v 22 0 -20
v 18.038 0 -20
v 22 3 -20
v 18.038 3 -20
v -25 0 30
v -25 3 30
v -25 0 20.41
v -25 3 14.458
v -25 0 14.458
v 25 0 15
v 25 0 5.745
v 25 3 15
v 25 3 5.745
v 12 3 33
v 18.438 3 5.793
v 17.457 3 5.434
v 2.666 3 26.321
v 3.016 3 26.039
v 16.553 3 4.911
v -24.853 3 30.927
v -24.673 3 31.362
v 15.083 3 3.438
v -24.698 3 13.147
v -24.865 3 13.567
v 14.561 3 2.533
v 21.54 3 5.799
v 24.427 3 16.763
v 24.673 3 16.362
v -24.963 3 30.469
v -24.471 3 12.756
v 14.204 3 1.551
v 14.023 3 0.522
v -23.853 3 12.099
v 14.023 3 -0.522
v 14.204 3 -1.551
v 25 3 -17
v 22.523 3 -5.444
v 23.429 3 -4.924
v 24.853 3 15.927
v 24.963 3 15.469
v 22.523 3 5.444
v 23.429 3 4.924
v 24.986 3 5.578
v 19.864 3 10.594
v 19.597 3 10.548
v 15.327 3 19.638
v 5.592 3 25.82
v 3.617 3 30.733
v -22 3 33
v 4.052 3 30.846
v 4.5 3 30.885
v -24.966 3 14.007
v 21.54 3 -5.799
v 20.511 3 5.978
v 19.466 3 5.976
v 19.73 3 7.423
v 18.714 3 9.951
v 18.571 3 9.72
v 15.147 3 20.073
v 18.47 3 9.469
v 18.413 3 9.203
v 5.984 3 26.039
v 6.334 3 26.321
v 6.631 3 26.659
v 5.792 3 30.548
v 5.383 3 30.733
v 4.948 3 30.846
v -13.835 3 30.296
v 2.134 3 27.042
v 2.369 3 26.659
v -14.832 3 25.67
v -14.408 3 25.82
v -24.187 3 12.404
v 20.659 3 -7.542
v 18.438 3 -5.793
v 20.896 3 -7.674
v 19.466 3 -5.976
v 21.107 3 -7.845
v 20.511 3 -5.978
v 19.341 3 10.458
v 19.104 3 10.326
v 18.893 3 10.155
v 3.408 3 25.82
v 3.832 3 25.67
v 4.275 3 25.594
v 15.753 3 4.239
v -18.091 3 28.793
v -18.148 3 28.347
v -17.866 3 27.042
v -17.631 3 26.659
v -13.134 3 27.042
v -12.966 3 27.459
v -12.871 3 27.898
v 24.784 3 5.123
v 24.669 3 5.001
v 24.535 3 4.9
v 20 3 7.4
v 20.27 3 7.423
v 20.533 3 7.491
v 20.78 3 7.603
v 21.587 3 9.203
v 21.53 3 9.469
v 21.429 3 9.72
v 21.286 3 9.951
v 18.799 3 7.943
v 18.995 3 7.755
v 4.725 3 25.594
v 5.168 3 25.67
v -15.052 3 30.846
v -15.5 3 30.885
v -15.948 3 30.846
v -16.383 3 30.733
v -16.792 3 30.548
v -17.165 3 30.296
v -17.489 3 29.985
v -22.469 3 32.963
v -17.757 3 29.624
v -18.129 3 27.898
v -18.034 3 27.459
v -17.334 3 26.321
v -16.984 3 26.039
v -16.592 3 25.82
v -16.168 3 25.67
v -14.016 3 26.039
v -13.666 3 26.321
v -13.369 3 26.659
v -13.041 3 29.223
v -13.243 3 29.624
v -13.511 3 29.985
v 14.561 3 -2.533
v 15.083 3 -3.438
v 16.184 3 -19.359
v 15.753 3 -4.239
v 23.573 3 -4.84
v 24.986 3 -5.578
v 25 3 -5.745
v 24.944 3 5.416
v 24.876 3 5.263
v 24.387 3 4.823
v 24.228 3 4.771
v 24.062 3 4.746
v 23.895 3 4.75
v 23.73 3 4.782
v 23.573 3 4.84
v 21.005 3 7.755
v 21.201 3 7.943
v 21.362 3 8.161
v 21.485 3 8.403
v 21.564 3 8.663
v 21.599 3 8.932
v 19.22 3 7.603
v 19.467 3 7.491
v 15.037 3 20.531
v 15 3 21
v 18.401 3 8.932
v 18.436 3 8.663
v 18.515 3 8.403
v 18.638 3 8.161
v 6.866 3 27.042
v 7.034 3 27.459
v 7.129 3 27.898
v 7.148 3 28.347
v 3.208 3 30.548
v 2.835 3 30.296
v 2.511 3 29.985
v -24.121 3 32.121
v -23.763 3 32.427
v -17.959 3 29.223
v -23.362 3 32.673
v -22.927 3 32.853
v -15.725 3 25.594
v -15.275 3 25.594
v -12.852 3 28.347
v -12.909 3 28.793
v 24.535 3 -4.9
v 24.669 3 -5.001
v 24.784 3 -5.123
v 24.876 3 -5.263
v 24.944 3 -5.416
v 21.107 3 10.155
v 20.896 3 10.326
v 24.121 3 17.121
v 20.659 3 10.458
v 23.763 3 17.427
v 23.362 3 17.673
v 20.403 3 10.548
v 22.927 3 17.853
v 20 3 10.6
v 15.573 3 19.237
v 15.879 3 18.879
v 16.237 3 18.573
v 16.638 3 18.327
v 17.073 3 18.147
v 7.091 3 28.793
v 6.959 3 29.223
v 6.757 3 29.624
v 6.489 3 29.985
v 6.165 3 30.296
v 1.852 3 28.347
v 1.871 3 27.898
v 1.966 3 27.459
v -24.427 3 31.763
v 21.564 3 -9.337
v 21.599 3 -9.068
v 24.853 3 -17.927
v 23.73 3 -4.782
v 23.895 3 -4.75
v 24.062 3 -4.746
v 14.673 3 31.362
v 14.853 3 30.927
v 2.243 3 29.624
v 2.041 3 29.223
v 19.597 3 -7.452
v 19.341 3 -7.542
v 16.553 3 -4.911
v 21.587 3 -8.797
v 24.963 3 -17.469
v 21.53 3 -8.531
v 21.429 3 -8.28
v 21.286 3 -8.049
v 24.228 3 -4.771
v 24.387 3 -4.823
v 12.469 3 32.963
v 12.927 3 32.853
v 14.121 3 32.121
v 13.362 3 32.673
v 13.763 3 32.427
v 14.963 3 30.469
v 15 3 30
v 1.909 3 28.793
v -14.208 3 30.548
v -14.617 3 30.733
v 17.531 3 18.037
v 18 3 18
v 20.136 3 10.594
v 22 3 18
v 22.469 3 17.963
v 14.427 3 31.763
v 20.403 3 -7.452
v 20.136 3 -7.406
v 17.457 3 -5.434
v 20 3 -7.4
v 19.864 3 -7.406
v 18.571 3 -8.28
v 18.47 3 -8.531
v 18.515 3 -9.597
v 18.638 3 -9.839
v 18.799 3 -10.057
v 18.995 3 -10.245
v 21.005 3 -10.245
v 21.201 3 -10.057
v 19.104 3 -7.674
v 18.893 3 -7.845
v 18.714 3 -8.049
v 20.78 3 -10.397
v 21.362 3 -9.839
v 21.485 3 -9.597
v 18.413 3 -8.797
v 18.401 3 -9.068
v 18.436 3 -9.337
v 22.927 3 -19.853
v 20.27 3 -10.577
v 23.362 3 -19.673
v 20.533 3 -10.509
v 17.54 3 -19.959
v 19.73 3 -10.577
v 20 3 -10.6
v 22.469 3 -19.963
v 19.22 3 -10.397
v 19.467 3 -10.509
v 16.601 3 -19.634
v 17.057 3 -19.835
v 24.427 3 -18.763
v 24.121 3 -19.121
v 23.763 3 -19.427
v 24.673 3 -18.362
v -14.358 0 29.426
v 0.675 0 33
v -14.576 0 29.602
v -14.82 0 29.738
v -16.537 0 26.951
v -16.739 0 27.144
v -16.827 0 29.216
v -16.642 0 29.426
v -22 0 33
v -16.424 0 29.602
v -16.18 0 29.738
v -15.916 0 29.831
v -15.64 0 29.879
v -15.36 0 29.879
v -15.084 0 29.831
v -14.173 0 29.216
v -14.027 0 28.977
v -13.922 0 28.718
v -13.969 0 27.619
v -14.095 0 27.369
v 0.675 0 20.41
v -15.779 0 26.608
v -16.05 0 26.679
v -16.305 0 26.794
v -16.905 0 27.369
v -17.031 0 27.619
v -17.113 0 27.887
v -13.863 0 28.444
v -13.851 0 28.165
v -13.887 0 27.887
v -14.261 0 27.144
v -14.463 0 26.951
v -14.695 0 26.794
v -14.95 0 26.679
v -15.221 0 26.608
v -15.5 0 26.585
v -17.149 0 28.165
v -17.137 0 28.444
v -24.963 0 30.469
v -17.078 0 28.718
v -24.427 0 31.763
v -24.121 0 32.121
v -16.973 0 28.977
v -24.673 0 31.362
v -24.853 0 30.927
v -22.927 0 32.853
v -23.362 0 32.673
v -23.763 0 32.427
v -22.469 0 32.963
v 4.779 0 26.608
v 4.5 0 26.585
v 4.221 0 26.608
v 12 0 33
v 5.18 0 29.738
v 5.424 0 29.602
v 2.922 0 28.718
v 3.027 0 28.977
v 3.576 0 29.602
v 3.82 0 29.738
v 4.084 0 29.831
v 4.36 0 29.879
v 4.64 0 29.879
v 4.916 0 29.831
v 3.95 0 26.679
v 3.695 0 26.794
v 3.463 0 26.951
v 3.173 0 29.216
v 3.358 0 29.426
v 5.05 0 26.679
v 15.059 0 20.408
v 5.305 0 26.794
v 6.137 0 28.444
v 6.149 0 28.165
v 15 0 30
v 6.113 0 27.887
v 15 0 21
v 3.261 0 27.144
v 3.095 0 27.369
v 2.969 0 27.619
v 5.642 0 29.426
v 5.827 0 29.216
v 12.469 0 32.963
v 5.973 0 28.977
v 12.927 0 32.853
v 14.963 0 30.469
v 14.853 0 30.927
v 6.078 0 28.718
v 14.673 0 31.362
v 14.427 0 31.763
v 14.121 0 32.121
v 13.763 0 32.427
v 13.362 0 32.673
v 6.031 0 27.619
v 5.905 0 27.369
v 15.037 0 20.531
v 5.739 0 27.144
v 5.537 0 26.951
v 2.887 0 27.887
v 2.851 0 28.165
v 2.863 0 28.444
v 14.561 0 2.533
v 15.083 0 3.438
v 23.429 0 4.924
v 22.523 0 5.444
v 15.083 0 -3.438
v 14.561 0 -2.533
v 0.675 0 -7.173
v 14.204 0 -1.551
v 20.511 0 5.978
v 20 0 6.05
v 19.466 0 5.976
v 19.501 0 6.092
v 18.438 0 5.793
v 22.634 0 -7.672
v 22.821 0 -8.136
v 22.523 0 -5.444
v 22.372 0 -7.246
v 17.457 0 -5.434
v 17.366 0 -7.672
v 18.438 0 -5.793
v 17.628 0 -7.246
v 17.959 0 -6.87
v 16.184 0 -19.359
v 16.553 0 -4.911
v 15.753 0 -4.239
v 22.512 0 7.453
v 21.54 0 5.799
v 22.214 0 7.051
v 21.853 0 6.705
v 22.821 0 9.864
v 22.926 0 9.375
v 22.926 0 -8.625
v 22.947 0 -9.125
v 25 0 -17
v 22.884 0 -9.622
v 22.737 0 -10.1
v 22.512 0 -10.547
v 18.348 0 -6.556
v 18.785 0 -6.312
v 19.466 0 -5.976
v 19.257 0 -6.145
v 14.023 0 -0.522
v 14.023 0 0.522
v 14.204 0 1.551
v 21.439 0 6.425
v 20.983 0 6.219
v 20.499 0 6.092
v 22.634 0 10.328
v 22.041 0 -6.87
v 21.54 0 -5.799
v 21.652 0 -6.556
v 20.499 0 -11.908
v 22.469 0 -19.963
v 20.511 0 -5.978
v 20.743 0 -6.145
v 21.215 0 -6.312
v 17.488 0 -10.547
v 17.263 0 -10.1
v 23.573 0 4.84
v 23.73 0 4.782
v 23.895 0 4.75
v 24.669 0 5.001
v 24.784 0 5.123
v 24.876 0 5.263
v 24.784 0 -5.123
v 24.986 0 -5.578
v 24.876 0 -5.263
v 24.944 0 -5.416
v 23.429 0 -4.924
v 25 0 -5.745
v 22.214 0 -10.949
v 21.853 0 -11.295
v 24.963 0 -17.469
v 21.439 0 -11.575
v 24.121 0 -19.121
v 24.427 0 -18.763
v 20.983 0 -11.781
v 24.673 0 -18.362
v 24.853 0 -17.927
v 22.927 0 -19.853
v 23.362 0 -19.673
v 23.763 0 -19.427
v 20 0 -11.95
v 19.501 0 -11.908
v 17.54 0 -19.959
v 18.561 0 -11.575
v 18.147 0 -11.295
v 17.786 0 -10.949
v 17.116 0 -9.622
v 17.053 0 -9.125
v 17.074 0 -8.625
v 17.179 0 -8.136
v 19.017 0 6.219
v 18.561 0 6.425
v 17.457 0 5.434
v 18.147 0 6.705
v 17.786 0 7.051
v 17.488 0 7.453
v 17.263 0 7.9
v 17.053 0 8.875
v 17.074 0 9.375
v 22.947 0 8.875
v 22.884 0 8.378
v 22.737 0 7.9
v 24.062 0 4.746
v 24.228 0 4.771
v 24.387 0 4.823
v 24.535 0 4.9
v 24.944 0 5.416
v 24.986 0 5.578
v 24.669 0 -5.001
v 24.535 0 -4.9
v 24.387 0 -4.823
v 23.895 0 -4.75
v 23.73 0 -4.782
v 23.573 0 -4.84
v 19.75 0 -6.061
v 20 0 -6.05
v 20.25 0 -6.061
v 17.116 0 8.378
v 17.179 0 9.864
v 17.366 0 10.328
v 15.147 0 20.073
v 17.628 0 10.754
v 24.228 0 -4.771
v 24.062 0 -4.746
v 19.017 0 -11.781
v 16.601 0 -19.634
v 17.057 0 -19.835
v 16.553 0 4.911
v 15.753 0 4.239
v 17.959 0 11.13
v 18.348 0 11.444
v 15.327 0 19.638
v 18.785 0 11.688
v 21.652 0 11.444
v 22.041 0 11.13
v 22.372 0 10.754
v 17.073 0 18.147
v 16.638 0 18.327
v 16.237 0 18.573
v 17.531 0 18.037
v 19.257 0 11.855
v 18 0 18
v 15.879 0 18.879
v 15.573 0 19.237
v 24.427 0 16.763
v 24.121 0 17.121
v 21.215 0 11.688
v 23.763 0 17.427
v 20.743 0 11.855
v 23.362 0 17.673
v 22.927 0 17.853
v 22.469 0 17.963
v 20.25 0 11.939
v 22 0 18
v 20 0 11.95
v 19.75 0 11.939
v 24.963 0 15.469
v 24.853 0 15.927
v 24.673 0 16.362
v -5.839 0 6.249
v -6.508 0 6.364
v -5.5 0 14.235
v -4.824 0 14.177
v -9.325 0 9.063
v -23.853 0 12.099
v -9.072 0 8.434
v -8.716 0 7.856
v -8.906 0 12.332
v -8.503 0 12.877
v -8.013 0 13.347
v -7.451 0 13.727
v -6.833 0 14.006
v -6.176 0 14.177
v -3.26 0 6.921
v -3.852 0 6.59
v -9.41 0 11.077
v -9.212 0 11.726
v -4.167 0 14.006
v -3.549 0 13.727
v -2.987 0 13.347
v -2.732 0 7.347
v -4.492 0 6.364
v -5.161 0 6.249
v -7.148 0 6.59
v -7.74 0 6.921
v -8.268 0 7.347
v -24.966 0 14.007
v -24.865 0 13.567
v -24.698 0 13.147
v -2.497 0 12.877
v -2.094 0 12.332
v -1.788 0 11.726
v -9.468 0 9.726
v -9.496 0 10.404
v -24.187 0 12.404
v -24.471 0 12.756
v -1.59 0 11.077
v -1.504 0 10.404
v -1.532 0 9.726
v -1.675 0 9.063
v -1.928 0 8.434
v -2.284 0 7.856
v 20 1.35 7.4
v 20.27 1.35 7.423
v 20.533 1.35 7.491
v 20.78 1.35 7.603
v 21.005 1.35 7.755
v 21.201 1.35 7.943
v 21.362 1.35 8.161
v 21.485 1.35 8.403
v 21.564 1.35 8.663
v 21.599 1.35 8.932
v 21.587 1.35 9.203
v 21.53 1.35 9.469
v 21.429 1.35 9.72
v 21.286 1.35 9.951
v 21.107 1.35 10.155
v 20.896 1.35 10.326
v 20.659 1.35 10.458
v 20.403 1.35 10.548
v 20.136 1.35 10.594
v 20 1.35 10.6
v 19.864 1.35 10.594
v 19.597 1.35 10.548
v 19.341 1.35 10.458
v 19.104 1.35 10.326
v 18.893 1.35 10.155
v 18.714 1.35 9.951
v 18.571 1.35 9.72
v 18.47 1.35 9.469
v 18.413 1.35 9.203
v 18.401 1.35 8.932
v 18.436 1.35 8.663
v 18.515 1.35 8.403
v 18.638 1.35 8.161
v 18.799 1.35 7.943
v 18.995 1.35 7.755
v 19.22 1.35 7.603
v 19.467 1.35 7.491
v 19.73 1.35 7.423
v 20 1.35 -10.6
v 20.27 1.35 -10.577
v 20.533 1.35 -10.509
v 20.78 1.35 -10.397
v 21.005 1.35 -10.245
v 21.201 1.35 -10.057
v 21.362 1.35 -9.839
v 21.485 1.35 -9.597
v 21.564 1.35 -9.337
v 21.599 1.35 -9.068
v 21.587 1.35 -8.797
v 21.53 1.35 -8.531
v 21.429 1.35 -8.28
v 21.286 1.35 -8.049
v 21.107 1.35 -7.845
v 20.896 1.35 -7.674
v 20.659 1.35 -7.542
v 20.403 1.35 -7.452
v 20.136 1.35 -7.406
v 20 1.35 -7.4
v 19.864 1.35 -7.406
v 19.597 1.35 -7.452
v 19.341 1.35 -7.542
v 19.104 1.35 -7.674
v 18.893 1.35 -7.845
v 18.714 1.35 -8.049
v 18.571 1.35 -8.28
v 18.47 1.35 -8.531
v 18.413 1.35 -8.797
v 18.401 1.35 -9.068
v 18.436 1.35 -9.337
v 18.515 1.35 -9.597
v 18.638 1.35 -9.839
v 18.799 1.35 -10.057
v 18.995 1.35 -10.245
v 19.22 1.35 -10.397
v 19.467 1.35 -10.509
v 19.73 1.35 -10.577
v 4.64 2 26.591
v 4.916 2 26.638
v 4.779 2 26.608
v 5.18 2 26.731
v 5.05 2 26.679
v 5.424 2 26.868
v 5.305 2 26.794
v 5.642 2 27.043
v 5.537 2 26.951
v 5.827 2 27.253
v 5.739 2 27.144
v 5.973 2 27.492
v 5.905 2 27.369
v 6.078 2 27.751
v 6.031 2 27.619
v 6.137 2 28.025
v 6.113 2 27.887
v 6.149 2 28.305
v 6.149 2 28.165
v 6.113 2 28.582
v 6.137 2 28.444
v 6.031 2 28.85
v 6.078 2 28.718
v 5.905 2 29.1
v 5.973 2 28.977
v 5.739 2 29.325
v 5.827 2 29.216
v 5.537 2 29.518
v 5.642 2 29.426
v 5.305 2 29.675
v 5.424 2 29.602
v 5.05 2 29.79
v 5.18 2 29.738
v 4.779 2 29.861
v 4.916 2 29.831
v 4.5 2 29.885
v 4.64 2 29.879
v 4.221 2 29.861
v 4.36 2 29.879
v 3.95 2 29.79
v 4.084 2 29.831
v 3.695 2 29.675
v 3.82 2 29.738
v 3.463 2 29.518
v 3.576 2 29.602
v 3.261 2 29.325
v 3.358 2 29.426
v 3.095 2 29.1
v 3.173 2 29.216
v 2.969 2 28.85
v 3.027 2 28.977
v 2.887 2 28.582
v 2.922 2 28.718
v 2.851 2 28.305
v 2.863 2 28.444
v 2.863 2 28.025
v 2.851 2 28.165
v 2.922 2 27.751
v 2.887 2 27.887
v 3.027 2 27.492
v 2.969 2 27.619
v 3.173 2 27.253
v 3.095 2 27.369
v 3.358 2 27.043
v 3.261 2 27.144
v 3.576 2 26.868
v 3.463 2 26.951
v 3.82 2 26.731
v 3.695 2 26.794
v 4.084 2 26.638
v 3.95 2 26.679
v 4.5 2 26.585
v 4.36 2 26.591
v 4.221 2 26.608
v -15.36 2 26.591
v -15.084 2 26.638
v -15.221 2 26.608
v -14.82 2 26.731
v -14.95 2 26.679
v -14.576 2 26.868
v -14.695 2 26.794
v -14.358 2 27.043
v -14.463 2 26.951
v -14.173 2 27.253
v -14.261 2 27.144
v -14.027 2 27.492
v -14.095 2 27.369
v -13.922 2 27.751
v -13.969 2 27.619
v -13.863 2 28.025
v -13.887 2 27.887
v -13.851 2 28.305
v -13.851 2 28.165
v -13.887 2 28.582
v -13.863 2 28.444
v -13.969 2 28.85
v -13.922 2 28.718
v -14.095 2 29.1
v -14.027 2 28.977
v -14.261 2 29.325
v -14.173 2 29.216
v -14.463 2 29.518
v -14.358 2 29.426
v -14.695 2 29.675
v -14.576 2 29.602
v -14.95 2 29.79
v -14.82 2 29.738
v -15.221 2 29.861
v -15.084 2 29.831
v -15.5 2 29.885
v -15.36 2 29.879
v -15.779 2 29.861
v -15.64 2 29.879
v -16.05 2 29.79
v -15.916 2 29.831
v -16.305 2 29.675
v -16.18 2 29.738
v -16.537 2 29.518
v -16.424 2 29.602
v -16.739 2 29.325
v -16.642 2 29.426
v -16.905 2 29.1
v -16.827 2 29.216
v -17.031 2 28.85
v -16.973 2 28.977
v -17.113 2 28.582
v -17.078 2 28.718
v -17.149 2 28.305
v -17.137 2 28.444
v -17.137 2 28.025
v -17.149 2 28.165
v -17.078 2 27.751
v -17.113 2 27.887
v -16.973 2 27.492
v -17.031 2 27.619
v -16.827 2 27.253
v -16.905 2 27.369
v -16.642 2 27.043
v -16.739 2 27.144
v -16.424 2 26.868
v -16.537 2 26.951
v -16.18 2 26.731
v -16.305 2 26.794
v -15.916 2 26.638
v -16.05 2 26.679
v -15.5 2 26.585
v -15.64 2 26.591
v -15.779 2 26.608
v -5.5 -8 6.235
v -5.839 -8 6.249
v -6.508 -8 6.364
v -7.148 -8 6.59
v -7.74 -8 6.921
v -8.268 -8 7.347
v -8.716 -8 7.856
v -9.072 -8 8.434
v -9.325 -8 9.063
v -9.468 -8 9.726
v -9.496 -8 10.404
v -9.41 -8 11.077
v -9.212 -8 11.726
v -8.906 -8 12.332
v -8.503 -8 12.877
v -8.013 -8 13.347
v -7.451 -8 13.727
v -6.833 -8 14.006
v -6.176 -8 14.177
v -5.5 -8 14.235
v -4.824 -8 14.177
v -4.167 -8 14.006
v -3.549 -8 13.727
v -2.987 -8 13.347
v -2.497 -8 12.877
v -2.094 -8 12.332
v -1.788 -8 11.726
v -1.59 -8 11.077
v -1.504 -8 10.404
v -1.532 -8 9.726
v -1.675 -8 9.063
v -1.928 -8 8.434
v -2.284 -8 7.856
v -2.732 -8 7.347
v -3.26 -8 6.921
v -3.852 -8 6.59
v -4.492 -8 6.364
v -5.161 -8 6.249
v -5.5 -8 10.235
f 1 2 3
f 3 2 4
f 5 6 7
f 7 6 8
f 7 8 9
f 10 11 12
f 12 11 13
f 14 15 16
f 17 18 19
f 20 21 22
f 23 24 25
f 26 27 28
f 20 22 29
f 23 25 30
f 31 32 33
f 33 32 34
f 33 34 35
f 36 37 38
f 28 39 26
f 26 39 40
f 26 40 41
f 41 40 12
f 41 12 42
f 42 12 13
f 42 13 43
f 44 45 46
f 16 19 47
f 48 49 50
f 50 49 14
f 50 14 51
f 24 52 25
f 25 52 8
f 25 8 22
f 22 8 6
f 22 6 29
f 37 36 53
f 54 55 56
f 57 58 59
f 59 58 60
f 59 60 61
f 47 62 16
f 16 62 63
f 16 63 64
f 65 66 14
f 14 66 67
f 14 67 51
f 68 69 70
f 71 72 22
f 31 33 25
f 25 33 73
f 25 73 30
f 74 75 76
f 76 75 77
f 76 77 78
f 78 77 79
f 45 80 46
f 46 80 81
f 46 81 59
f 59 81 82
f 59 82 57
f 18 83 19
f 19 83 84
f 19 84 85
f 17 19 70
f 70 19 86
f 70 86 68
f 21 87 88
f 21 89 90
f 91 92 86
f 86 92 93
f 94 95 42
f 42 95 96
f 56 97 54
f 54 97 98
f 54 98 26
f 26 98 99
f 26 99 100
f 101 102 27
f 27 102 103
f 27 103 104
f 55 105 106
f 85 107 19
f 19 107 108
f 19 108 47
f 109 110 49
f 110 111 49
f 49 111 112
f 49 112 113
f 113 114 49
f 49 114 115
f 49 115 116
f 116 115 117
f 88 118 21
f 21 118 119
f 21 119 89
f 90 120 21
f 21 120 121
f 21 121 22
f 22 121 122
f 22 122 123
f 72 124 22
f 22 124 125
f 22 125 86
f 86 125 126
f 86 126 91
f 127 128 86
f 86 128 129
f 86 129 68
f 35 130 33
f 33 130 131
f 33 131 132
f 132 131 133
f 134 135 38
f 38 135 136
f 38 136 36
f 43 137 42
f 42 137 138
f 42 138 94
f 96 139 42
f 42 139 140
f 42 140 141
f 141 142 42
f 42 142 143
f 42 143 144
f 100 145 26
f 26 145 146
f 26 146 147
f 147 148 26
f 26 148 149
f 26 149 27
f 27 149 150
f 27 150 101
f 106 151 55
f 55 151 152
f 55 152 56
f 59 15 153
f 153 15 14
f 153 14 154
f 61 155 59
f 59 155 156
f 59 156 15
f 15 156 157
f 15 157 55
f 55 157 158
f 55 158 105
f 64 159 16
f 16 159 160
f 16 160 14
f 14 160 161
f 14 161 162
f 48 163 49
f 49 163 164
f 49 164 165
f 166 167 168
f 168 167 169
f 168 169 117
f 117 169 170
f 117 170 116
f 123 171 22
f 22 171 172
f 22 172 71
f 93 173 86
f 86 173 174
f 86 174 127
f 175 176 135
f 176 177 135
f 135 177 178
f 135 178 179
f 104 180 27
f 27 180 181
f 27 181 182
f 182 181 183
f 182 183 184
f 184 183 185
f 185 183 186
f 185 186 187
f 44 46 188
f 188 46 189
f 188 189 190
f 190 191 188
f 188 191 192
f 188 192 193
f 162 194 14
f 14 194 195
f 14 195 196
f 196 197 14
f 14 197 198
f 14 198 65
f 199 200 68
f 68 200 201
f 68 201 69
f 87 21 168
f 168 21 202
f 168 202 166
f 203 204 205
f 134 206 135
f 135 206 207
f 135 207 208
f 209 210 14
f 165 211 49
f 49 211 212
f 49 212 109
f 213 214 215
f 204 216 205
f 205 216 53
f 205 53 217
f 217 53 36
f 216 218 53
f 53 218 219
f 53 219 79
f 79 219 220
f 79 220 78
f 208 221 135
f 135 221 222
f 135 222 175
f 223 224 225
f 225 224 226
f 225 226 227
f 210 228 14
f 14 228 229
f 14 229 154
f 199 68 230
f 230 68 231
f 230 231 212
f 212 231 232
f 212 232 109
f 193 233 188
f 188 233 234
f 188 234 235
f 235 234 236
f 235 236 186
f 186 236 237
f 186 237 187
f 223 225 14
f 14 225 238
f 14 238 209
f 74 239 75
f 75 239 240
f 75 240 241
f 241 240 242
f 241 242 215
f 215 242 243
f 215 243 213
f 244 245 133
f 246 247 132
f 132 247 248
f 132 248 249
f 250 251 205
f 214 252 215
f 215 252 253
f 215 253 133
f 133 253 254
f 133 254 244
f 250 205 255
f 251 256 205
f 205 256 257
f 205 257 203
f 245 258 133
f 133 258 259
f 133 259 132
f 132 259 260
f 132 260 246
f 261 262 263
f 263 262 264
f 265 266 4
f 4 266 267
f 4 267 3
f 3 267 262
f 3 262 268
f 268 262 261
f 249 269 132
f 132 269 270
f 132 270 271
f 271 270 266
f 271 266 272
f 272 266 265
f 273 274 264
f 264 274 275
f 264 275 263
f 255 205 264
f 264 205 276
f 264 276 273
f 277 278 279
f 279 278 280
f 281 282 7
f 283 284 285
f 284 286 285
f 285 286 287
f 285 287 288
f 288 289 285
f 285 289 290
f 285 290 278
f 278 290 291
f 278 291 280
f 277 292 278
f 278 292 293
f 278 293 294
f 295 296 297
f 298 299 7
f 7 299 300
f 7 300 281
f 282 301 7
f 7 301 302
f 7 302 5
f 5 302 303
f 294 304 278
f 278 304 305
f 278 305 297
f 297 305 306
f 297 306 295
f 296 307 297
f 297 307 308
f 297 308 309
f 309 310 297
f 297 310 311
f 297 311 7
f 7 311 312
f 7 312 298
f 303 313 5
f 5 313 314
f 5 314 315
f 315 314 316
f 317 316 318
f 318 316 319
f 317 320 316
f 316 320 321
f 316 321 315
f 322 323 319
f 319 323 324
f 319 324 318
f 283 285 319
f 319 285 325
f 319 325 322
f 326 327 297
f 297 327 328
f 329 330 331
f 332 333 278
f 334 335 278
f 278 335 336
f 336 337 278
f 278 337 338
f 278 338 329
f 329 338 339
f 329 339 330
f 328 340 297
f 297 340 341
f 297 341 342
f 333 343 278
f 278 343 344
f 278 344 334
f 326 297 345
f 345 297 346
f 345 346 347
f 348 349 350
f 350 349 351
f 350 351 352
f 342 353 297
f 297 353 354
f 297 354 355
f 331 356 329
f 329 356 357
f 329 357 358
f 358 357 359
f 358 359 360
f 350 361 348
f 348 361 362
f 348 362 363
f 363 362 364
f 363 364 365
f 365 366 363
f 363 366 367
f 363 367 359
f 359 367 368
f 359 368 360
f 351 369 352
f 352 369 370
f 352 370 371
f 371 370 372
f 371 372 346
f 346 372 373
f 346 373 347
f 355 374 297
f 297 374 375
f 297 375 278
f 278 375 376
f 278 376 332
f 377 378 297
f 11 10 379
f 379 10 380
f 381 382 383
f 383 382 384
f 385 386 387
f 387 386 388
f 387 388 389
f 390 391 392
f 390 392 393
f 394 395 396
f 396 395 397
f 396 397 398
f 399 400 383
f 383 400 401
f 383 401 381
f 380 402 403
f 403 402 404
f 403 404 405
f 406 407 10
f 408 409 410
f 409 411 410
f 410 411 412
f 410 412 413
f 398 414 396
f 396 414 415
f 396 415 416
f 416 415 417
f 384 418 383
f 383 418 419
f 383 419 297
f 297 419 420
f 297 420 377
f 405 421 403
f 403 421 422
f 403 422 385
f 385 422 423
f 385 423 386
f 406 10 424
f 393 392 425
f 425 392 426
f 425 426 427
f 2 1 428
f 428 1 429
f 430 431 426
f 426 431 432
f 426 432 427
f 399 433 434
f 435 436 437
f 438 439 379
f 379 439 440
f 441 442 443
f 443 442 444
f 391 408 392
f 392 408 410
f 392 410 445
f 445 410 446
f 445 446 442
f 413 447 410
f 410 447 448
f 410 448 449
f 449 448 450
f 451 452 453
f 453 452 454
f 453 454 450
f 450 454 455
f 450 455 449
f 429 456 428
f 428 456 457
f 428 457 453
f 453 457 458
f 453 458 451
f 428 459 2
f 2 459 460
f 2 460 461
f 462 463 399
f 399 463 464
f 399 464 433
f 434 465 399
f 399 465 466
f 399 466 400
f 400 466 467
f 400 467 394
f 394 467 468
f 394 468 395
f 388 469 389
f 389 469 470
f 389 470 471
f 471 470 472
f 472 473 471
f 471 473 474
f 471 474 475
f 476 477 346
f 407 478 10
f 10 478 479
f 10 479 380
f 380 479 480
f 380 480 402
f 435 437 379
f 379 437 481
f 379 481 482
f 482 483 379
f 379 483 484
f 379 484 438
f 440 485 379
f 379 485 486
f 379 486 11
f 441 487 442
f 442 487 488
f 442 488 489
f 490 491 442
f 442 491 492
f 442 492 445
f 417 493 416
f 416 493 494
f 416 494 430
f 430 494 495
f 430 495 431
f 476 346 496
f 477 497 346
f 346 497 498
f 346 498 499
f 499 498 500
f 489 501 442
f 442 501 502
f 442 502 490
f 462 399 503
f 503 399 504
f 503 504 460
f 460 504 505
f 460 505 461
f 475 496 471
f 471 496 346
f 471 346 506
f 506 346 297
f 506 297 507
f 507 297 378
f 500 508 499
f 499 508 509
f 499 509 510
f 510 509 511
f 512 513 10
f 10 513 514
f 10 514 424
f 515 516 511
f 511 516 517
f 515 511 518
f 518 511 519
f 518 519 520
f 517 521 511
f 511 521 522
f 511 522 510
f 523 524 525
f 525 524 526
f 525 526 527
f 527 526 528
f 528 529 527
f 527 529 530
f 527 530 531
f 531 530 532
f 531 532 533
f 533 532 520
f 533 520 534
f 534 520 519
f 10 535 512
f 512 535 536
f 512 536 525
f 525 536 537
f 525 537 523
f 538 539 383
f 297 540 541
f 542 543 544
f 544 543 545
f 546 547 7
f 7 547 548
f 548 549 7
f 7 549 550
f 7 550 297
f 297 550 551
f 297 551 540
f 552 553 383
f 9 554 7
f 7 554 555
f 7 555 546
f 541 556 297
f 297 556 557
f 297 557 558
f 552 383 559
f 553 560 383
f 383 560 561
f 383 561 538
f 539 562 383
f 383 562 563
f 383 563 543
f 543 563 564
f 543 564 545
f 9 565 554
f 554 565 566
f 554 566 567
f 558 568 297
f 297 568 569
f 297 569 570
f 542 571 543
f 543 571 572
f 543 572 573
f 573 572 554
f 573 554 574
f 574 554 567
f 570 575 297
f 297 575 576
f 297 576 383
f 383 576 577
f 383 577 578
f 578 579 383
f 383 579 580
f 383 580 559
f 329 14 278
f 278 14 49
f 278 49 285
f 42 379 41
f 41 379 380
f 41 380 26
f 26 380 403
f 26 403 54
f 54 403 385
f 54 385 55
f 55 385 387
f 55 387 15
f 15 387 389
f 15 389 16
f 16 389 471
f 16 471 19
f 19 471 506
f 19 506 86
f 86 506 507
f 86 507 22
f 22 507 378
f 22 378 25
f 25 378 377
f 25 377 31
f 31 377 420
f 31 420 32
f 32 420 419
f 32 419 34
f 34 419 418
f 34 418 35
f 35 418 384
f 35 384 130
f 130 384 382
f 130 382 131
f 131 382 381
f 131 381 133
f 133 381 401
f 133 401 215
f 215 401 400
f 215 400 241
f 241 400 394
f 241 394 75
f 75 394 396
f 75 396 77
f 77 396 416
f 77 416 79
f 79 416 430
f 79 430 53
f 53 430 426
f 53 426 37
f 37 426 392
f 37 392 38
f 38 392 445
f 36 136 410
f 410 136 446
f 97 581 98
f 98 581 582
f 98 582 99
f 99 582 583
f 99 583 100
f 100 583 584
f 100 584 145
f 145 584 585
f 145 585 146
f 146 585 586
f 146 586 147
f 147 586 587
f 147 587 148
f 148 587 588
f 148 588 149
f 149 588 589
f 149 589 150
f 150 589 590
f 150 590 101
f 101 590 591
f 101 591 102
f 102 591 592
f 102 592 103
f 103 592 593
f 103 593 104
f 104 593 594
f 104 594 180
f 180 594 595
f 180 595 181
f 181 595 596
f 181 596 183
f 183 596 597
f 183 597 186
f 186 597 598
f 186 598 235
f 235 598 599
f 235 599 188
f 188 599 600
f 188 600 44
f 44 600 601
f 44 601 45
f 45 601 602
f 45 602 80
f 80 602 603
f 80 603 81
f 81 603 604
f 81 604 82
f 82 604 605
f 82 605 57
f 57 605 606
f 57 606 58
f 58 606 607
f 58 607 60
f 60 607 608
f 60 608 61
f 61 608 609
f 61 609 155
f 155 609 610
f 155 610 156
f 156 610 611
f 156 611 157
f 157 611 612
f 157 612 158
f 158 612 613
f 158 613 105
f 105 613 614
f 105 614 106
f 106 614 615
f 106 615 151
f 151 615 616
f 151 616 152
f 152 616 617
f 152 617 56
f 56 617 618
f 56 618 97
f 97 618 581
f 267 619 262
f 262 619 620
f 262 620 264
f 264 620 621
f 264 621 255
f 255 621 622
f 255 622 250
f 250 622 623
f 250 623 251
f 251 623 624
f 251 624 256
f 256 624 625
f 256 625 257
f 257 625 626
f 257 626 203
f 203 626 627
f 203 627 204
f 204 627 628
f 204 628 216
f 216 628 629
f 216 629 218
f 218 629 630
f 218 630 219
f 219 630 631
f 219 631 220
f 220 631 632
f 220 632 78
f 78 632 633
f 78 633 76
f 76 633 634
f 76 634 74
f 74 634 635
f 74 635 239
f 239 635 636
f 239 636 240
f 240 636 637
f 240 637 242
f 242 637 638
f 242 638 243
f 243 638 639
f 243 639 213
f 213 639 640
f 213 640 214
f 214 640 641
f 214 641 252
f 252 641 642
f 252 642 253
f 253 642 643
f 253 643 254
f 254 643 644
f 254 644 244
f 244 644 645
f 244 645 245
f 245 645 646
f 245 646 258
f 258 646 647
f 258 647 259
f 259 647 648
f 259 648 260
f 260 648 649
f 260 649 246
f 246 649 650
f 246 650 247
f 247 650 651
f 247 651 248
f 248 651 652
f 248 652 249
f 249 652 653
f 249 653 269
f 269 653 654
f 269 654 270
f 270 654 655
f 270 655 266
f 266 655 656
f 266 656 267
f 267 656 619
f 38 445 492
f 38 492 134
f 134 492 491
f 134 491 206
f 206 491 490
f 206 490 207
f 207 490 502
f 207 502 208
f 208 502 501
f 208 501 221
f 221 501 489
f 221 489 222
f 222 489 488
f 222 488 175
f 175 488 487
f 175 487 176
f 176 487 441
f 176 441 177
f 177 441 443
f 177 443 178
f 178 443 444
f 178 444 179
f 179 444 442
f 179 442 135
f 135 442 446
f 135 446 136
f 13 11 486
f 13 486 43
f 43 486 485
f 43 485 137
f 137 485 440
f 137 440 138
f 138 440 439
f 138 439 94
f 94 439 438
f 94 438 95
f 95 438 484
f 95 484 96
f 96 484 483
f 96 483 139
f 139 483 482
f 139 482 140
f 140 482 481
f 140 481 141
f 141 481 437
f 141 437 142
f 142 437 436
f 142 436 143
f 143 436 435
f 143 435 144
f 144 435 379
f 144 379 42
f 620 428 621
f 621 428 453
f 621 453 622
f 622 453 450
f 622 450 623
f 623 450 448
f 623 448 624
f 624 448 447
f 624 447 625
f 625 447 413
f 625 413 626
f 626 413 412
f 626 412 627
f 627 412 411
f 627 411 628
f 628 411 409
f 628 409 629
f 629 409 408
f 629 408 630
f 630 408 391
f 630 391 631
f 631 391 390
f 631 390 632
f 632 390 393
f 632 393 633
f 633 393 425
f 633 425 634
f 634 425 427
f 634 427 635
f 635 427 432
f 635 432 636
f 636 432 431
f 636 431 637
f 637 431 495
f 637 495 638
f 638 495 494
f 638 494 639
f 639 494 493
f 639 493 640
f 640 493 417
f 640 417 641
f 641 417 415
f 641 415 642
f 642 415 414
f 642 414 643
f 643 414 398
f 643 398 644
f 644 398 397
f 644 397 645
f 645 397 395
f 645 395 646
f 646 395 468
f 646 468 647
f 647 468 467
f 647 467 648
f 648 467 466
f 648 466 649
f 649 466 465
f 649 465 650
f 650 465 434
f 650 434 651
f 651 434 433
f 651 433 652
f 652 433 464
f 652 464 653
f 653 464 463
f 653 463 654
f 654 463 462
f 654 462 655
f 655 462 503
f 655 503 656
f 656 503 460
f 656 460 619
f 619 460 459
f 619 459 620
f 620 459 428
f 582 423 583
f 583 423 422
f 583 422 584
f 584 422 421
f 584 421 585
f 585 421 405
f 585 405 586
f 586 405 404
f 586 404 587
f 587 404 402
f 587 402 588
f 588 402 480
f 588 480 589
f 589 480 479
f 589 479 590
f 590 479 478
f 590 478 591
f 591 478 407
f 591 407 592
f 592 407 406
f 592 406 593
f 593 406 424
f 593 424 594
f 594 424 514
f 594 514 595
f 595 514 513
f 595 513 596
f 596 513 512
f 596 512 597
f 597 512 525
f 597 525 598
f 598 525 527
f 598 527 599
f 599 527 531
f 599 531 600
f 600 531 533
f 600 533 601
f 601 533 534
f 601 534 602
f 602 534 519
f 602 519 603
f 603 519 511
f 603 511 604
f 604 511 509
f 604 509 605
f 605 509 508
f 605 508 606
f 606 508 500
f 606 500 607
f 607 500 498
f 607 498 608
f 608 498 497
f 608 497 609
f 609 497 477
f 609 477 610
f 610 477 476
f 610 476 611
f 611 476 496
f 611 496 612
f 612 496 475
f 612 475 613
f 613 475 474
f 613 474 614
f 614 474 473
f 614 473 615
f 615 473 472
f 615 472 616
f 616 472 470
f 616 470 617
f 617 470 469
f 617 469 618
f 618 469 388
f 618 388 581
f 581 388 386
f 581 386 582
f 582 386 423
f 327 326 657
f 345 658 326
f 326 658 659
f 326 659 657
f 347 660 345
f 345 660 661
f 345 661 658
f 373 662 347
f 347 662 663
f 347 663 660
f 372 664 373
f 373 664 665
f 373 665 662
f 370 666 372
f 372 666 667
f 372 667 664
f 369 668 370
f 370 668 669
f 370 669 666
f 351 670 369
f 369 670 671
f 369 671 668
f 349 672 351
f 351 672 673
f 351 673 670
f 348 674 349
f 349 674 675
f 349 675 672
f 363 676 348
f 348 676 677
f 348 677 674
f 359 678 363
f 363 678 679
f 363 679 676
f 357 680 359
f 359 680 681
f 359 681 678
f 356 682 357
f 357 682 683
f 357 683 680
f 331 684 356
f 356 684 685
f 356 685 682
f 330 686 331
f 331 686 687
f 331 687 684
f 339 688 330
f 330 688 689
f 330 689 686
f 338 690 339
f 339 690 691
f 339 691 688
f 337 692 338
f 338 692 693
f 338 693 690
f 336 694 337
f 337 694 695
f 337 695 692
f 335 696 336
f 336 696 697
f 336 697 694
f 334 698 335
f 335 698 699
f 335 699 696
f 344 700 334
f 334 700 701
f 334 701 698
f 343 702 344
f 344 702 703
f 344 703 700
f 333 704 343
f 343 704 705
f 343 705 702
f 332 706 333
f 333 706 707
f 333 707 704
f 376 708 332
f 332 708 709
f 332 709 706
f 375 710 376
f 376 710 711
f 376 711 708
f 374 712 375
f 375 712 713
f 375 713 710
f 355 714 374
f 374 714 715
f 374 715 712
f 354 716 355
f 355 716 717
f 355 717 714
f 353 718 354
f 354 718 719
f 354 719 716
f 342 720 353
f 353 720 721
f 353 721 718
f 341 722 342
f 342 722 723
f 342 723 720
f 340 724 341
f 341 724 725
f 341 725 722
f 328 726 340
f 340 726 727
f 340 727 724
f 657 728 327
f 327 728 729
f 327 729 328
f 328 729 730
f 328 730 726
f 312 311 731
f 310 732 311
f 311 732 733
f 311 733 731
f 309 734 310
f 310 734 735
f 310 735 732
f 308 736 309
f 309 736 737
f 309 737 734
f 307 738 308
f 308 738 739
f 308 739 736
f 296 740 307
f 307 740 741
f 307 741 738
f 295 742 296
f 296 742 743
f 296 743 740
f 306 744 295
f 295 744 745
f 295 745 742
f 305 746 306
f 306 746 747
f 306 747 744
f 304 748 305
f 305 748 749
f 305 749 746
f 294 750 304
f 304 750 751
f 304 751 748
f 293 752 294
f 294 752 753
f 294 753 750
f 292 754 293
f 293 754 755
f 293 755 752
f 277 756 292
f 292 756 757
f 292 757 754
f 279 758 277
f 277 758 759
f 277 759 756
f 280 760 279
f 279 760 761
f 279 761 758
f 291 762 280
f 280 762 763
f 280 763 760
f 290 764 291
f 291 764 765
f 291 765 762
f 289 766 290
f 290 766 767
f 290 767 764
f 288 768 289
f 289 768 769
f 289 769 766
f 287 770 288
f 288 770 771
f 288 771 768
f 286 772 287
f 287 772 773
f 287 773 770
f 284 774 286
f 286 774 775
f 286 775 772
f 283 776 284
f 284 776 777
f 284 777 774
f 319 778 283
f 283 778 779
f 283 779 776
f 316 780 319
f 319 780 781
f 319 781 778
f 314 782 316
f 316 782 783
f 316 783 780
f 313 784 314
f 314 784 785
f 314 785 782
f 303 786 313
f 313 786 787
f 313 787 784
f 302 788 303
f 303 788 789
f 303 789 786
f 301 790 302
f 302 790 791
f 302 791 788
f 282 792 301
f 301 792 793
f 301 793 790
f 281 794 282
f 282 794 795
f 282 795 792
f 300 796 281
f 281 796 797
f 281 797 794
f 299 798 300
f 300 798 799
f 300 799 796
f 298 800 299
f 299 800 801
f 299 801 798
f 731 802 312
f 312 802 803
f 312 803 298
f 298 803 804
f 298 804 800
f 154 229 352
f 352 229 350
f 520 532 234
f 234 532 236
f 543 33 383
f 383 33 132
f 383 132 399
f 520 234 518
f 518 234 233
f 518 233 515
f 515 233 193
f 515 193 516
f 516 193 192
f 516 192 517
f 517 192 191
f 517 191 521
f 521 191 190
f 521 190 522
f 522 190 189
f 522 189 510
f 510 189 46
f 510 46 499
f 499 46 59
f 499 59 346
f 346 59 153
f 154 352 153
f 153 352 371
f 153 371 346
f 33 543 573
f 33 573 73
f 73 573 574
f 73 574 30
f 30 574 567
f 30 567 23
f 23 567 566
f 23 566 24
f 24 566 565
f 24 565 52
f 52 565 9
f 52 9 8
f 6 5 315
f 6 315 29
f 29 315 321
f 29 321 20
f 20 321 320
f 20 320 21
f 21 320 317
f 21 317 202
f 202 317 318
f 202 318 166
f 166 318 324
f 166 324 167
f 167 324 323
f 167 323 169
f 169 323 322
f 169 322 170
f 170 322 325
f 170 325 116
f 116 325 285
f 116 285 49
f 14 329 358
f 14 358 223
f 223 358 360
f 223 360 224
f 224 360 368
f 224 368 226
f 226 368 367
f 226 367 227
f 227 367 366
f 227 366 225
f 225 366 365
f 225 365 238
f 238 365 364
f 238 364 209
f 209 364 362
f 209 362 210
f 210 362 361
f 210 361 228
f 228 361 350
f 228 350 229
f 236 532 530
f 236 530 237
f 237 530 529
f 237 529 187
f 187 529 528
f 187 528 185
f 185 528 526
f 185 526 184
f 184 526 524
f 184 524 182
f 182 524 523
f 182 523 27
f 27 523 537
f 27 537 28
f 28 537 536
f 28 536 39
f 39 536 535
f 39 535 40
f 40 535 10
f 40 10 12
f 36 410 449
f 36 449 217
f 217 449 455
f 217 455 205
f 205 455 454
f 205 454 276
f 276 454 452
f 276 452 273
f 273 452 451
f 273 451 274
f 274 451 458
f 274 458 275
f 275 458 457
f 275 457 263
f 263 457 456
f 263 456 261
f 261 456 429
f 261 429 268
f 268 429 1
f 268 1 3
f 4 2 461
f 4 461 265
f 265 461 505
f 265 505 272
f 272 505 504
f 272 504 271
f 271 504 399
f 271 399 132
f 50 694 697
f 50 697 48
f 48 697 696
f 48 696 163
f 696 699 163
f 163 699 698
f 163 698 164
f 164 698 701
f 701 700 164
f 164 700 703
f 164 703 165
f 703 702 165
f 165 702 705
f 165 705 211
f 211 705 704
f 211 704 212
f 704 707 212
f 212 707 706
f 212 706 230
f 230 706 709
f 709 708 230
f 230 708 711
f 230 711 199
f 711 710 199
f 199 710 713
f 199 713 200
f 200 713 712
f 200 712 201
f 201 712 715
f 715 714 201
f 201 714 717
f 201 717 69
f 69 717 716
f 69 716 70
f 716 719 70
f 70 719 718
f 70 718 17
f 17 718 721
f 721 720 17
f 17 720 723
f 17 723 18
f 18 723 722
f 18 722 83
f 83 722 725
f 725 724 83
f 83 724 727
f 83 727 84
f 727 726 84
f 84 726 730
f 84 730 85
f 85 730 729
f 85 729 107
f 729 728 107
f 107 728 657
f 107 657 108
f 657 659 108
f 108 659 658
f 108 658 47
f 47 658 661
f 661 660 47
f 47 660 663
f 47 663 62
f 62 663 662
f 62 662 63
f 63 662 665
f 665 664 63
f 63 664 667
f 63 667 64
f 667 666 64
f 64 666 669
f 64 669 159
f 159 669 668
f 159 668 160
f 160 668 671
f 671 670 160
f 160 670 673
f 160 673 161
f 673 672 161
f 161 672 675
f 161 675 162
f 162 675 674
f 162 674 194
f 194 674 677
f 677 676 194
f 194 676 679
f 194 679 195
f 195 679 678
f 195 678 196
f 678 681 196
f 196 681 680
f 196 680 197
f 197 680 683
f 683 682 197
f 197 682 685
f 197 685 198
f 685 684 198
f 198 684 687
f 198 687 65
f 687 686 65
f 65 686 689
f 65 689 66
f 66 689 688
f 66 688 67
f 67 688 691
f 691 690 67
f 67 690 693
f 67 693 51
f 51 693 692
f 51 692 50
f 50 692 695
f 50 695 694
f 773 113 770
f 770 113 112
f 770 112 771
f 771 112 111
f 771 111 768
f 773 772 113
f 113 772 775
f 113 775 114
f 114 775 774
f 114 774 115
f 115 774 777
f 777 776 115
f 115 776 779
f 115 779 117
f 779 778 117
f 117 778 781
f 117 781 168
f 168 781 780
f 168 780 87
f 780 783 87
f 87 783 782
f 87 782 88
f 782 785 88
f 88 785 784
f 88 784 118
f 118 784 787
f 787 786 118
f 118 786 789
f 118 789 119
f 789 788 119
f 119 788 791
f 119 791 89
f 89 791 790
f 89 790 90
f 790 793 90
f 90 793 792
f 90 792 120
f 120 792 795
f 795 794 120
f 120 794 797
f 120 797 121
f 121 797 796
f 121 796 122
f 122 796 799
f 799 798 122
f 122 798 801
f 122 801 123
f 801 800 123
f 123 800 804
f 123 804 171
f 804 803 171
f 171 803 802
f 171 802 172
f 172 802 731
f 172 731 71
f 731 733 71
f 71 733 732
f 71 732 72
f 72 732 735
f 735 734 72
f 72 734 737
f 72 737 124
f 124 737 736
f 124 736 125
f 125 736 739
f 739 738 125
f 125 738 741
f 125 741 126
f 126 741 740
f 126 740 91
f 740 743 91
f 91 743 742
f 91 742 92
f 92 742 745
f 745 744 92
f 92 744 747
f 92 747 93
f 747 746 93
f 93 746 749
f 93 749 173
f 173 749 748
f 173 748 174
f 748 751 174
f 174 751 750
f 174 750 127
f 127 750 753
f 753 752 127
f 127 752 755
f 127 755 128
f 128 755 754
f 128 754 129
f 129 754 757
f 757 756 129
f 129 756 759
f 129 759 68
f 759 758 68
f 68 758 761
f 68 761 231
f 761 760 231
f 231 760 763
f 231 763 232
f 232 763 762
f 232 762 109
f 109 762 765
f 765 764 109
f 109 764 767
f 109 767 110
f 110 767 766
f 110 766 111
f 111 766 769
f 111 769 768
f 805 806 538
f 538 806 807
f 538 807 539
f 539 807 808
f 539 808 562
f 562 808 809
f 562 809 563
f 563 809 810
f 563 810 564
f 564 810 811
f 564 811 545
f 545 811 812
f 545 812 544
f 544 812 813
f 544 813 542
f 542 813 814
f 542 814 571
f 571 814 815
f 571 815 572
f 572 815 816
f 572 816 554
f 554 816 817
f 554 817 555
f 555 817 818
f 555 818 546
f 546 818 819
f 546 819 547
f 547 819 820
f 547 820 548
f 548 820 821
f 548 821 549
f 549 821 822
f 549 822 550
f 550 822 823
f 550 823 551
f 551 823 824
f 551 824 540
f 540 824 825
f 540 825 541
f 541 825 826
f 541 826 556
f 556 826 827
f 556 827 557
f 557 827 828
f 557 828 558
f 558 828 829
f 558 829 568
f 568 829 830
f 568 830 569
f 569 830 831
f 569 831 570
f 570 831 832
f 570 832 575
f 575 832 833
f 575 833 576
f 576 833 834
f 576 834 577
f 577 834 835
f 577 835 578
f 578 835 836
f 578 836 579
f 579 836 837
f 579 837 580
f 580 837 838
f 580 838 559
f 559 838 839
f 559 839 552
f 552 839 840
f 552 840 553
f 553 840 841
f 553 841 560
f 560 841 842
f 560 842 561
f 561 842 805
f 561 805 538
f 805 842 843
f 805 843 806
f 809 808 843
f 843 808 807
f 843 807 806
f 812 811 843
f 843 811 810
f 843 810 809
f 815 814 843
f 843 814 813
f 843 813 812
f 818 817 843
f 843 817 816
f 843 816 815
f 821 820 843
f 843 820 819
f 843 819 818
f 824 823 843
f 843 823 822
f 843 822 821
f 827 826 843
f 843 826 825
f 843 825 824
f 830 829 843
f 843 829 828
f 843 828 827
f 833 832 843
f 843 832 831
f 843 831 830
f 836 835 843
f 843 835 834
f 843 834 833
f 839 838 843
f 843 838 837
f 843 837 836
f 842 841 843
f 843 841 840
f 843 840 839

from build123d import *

# Parameters (mm, degrees)
ESBO_O1_R                 = 1.6
RESSALTO_EXTRUS_O10_DEPTH = 3
FILETE2_R                 = 1
CHANFRO1_SIZE             = 1.35
ESBO_O5_W                 = 50
ESBO_O5_H                 = 13
RESSALTO_EXTRUS_O13_DEPTH = 3
ESBO_O7_R                 = 1.65
CORTE_EXTRUS_O1_DEPTH     = 4
ESBO_O8_W                 = 10
ESBO_O8_H                 = 15
CORTE_EXTRUS_O2_DEPTH     = 4
FILETE3_R                 = 3
CHANFRO2_SIZE             = 1
ESBO_O9_R                 = 4
RESSALTO_EXTRUS_O14_DEPTH = 8


with BuildPart() as part:
    # Esboço1 → Ressalto-extrusão10 (new body)
    with BuildSketch(Plane(origin=(0, 0, 0), x_dir=(1, 0, 0), z_dir=(0, 1, 0))):
        with BuildLine():
            Line((25, 20), (-25, 20))
            Line((-25, 20), (-25, -20))
            Line((-25, -20), (25, -20))
            Line((25, -20), (25, -3.31662479))
            ThreePointArc((25, -3.31662479), (14, 0), (25, 3.31662479))
            Line((25, 3.31662479), (25, 20))
        make_face()
        with Locations((20, -9)):
            Circle(ESBO_O1_R, mode=Mode.SUBTRACT)
        with Locations((20, 9)):
            Circle(ESBO_O1_R, mode=Mode.SUBTRACT)
    extrude(amount=RESSALTO_EXTRUS_O10_DEPTH)

    # Filete2
    filete2_edges = [part.edges().sort_by_distance(p)[0] for p in [
        (25, 1.5, 3.31662479),
        (25, 1.5, -3.31662479),
    ]]
    fillet(filete2_edges, radius=FILETE2_R)

    # Chanfro1
    chanfro1_edges = [part.edges().sort_by_distance(p)[0] for p in [
        (18.4, 0, -9),
        (18.4, 0, 9),
    ]]
    chamfer(chanfro1_edges, length=CHANFRO1_SIZE)

    # Esboço5 → Ressalto-extrusão13 (add)
    with BuildSketch(Plane.XZ):
        with Locations((0, 26.5)):
            Rectangle(ESBO_O5_W, ESBO_O5_H)
    extrude(amount=-RESSALTO_EXTRUS_O13_DEPTH)

    # Esboço7 → Corte-extrusão1 (cut, through all)
    with BuildSketch(Plane.XZ):
        with Locations((-15.5, 28.234562647)):
            Circle(ESBO_O7_R)
        with Locations((4.5, 28.234562647)):
            Circle(ESBO_O7_R)
    extrude(amount=-CORTE_EXTRUS_O1_DEPTH, mode=Mode.SUBTRACT)

    # Esboço8 → Corte-extrusão2 (cut, through all)
    with BuildSketch(Plane.XZ):
        Polygon((-25, -20), (-25, 13), (17, -20), align=None)
        with Locations((20, 25.5)):
            Rectangle(ESBO_O8_W, ESBO_O8_H)
    extrude(amount=-CORTE_EXTRUS_O2_DEPTH, mode=Mode.SUBTRACT)

    # Filete3
    filete3_edges = [part.edges().sort_by_distance(p)[0] for p in [
        (25, 1.5, -20),
        (-25, 1.5, 33),
        (-25, 1.5, 13),
        (17, 1.5, -20),
        (15, 1.5, 18),
        (15, 1.5, 33),
        (25, 1.5, 18),
    ]]
    fillet(filete3_edges, radius=FILETE3_R)

    # Chanfro2
    chanfro2_edges = [part.edges().sort_by_distance(p)[0] for p in [
        (-17.15, 3, 28.234562647),
        (2.85, 3, 28.234562647),
    ]]
    chamfer(chanfro2_edges, length=CHANFRO2_SIZE)

    # Esboço9 → Ressalto-extrusão14 (add)
    with BuildSketch(Plane.XZ):
        with Locations((-5.5, 10.234562647)):
            Circle(ESBO_O9_R)
    extrude(amount=RESSALTO_EXTRUS_O14_DEPTH)


solid = part.part
